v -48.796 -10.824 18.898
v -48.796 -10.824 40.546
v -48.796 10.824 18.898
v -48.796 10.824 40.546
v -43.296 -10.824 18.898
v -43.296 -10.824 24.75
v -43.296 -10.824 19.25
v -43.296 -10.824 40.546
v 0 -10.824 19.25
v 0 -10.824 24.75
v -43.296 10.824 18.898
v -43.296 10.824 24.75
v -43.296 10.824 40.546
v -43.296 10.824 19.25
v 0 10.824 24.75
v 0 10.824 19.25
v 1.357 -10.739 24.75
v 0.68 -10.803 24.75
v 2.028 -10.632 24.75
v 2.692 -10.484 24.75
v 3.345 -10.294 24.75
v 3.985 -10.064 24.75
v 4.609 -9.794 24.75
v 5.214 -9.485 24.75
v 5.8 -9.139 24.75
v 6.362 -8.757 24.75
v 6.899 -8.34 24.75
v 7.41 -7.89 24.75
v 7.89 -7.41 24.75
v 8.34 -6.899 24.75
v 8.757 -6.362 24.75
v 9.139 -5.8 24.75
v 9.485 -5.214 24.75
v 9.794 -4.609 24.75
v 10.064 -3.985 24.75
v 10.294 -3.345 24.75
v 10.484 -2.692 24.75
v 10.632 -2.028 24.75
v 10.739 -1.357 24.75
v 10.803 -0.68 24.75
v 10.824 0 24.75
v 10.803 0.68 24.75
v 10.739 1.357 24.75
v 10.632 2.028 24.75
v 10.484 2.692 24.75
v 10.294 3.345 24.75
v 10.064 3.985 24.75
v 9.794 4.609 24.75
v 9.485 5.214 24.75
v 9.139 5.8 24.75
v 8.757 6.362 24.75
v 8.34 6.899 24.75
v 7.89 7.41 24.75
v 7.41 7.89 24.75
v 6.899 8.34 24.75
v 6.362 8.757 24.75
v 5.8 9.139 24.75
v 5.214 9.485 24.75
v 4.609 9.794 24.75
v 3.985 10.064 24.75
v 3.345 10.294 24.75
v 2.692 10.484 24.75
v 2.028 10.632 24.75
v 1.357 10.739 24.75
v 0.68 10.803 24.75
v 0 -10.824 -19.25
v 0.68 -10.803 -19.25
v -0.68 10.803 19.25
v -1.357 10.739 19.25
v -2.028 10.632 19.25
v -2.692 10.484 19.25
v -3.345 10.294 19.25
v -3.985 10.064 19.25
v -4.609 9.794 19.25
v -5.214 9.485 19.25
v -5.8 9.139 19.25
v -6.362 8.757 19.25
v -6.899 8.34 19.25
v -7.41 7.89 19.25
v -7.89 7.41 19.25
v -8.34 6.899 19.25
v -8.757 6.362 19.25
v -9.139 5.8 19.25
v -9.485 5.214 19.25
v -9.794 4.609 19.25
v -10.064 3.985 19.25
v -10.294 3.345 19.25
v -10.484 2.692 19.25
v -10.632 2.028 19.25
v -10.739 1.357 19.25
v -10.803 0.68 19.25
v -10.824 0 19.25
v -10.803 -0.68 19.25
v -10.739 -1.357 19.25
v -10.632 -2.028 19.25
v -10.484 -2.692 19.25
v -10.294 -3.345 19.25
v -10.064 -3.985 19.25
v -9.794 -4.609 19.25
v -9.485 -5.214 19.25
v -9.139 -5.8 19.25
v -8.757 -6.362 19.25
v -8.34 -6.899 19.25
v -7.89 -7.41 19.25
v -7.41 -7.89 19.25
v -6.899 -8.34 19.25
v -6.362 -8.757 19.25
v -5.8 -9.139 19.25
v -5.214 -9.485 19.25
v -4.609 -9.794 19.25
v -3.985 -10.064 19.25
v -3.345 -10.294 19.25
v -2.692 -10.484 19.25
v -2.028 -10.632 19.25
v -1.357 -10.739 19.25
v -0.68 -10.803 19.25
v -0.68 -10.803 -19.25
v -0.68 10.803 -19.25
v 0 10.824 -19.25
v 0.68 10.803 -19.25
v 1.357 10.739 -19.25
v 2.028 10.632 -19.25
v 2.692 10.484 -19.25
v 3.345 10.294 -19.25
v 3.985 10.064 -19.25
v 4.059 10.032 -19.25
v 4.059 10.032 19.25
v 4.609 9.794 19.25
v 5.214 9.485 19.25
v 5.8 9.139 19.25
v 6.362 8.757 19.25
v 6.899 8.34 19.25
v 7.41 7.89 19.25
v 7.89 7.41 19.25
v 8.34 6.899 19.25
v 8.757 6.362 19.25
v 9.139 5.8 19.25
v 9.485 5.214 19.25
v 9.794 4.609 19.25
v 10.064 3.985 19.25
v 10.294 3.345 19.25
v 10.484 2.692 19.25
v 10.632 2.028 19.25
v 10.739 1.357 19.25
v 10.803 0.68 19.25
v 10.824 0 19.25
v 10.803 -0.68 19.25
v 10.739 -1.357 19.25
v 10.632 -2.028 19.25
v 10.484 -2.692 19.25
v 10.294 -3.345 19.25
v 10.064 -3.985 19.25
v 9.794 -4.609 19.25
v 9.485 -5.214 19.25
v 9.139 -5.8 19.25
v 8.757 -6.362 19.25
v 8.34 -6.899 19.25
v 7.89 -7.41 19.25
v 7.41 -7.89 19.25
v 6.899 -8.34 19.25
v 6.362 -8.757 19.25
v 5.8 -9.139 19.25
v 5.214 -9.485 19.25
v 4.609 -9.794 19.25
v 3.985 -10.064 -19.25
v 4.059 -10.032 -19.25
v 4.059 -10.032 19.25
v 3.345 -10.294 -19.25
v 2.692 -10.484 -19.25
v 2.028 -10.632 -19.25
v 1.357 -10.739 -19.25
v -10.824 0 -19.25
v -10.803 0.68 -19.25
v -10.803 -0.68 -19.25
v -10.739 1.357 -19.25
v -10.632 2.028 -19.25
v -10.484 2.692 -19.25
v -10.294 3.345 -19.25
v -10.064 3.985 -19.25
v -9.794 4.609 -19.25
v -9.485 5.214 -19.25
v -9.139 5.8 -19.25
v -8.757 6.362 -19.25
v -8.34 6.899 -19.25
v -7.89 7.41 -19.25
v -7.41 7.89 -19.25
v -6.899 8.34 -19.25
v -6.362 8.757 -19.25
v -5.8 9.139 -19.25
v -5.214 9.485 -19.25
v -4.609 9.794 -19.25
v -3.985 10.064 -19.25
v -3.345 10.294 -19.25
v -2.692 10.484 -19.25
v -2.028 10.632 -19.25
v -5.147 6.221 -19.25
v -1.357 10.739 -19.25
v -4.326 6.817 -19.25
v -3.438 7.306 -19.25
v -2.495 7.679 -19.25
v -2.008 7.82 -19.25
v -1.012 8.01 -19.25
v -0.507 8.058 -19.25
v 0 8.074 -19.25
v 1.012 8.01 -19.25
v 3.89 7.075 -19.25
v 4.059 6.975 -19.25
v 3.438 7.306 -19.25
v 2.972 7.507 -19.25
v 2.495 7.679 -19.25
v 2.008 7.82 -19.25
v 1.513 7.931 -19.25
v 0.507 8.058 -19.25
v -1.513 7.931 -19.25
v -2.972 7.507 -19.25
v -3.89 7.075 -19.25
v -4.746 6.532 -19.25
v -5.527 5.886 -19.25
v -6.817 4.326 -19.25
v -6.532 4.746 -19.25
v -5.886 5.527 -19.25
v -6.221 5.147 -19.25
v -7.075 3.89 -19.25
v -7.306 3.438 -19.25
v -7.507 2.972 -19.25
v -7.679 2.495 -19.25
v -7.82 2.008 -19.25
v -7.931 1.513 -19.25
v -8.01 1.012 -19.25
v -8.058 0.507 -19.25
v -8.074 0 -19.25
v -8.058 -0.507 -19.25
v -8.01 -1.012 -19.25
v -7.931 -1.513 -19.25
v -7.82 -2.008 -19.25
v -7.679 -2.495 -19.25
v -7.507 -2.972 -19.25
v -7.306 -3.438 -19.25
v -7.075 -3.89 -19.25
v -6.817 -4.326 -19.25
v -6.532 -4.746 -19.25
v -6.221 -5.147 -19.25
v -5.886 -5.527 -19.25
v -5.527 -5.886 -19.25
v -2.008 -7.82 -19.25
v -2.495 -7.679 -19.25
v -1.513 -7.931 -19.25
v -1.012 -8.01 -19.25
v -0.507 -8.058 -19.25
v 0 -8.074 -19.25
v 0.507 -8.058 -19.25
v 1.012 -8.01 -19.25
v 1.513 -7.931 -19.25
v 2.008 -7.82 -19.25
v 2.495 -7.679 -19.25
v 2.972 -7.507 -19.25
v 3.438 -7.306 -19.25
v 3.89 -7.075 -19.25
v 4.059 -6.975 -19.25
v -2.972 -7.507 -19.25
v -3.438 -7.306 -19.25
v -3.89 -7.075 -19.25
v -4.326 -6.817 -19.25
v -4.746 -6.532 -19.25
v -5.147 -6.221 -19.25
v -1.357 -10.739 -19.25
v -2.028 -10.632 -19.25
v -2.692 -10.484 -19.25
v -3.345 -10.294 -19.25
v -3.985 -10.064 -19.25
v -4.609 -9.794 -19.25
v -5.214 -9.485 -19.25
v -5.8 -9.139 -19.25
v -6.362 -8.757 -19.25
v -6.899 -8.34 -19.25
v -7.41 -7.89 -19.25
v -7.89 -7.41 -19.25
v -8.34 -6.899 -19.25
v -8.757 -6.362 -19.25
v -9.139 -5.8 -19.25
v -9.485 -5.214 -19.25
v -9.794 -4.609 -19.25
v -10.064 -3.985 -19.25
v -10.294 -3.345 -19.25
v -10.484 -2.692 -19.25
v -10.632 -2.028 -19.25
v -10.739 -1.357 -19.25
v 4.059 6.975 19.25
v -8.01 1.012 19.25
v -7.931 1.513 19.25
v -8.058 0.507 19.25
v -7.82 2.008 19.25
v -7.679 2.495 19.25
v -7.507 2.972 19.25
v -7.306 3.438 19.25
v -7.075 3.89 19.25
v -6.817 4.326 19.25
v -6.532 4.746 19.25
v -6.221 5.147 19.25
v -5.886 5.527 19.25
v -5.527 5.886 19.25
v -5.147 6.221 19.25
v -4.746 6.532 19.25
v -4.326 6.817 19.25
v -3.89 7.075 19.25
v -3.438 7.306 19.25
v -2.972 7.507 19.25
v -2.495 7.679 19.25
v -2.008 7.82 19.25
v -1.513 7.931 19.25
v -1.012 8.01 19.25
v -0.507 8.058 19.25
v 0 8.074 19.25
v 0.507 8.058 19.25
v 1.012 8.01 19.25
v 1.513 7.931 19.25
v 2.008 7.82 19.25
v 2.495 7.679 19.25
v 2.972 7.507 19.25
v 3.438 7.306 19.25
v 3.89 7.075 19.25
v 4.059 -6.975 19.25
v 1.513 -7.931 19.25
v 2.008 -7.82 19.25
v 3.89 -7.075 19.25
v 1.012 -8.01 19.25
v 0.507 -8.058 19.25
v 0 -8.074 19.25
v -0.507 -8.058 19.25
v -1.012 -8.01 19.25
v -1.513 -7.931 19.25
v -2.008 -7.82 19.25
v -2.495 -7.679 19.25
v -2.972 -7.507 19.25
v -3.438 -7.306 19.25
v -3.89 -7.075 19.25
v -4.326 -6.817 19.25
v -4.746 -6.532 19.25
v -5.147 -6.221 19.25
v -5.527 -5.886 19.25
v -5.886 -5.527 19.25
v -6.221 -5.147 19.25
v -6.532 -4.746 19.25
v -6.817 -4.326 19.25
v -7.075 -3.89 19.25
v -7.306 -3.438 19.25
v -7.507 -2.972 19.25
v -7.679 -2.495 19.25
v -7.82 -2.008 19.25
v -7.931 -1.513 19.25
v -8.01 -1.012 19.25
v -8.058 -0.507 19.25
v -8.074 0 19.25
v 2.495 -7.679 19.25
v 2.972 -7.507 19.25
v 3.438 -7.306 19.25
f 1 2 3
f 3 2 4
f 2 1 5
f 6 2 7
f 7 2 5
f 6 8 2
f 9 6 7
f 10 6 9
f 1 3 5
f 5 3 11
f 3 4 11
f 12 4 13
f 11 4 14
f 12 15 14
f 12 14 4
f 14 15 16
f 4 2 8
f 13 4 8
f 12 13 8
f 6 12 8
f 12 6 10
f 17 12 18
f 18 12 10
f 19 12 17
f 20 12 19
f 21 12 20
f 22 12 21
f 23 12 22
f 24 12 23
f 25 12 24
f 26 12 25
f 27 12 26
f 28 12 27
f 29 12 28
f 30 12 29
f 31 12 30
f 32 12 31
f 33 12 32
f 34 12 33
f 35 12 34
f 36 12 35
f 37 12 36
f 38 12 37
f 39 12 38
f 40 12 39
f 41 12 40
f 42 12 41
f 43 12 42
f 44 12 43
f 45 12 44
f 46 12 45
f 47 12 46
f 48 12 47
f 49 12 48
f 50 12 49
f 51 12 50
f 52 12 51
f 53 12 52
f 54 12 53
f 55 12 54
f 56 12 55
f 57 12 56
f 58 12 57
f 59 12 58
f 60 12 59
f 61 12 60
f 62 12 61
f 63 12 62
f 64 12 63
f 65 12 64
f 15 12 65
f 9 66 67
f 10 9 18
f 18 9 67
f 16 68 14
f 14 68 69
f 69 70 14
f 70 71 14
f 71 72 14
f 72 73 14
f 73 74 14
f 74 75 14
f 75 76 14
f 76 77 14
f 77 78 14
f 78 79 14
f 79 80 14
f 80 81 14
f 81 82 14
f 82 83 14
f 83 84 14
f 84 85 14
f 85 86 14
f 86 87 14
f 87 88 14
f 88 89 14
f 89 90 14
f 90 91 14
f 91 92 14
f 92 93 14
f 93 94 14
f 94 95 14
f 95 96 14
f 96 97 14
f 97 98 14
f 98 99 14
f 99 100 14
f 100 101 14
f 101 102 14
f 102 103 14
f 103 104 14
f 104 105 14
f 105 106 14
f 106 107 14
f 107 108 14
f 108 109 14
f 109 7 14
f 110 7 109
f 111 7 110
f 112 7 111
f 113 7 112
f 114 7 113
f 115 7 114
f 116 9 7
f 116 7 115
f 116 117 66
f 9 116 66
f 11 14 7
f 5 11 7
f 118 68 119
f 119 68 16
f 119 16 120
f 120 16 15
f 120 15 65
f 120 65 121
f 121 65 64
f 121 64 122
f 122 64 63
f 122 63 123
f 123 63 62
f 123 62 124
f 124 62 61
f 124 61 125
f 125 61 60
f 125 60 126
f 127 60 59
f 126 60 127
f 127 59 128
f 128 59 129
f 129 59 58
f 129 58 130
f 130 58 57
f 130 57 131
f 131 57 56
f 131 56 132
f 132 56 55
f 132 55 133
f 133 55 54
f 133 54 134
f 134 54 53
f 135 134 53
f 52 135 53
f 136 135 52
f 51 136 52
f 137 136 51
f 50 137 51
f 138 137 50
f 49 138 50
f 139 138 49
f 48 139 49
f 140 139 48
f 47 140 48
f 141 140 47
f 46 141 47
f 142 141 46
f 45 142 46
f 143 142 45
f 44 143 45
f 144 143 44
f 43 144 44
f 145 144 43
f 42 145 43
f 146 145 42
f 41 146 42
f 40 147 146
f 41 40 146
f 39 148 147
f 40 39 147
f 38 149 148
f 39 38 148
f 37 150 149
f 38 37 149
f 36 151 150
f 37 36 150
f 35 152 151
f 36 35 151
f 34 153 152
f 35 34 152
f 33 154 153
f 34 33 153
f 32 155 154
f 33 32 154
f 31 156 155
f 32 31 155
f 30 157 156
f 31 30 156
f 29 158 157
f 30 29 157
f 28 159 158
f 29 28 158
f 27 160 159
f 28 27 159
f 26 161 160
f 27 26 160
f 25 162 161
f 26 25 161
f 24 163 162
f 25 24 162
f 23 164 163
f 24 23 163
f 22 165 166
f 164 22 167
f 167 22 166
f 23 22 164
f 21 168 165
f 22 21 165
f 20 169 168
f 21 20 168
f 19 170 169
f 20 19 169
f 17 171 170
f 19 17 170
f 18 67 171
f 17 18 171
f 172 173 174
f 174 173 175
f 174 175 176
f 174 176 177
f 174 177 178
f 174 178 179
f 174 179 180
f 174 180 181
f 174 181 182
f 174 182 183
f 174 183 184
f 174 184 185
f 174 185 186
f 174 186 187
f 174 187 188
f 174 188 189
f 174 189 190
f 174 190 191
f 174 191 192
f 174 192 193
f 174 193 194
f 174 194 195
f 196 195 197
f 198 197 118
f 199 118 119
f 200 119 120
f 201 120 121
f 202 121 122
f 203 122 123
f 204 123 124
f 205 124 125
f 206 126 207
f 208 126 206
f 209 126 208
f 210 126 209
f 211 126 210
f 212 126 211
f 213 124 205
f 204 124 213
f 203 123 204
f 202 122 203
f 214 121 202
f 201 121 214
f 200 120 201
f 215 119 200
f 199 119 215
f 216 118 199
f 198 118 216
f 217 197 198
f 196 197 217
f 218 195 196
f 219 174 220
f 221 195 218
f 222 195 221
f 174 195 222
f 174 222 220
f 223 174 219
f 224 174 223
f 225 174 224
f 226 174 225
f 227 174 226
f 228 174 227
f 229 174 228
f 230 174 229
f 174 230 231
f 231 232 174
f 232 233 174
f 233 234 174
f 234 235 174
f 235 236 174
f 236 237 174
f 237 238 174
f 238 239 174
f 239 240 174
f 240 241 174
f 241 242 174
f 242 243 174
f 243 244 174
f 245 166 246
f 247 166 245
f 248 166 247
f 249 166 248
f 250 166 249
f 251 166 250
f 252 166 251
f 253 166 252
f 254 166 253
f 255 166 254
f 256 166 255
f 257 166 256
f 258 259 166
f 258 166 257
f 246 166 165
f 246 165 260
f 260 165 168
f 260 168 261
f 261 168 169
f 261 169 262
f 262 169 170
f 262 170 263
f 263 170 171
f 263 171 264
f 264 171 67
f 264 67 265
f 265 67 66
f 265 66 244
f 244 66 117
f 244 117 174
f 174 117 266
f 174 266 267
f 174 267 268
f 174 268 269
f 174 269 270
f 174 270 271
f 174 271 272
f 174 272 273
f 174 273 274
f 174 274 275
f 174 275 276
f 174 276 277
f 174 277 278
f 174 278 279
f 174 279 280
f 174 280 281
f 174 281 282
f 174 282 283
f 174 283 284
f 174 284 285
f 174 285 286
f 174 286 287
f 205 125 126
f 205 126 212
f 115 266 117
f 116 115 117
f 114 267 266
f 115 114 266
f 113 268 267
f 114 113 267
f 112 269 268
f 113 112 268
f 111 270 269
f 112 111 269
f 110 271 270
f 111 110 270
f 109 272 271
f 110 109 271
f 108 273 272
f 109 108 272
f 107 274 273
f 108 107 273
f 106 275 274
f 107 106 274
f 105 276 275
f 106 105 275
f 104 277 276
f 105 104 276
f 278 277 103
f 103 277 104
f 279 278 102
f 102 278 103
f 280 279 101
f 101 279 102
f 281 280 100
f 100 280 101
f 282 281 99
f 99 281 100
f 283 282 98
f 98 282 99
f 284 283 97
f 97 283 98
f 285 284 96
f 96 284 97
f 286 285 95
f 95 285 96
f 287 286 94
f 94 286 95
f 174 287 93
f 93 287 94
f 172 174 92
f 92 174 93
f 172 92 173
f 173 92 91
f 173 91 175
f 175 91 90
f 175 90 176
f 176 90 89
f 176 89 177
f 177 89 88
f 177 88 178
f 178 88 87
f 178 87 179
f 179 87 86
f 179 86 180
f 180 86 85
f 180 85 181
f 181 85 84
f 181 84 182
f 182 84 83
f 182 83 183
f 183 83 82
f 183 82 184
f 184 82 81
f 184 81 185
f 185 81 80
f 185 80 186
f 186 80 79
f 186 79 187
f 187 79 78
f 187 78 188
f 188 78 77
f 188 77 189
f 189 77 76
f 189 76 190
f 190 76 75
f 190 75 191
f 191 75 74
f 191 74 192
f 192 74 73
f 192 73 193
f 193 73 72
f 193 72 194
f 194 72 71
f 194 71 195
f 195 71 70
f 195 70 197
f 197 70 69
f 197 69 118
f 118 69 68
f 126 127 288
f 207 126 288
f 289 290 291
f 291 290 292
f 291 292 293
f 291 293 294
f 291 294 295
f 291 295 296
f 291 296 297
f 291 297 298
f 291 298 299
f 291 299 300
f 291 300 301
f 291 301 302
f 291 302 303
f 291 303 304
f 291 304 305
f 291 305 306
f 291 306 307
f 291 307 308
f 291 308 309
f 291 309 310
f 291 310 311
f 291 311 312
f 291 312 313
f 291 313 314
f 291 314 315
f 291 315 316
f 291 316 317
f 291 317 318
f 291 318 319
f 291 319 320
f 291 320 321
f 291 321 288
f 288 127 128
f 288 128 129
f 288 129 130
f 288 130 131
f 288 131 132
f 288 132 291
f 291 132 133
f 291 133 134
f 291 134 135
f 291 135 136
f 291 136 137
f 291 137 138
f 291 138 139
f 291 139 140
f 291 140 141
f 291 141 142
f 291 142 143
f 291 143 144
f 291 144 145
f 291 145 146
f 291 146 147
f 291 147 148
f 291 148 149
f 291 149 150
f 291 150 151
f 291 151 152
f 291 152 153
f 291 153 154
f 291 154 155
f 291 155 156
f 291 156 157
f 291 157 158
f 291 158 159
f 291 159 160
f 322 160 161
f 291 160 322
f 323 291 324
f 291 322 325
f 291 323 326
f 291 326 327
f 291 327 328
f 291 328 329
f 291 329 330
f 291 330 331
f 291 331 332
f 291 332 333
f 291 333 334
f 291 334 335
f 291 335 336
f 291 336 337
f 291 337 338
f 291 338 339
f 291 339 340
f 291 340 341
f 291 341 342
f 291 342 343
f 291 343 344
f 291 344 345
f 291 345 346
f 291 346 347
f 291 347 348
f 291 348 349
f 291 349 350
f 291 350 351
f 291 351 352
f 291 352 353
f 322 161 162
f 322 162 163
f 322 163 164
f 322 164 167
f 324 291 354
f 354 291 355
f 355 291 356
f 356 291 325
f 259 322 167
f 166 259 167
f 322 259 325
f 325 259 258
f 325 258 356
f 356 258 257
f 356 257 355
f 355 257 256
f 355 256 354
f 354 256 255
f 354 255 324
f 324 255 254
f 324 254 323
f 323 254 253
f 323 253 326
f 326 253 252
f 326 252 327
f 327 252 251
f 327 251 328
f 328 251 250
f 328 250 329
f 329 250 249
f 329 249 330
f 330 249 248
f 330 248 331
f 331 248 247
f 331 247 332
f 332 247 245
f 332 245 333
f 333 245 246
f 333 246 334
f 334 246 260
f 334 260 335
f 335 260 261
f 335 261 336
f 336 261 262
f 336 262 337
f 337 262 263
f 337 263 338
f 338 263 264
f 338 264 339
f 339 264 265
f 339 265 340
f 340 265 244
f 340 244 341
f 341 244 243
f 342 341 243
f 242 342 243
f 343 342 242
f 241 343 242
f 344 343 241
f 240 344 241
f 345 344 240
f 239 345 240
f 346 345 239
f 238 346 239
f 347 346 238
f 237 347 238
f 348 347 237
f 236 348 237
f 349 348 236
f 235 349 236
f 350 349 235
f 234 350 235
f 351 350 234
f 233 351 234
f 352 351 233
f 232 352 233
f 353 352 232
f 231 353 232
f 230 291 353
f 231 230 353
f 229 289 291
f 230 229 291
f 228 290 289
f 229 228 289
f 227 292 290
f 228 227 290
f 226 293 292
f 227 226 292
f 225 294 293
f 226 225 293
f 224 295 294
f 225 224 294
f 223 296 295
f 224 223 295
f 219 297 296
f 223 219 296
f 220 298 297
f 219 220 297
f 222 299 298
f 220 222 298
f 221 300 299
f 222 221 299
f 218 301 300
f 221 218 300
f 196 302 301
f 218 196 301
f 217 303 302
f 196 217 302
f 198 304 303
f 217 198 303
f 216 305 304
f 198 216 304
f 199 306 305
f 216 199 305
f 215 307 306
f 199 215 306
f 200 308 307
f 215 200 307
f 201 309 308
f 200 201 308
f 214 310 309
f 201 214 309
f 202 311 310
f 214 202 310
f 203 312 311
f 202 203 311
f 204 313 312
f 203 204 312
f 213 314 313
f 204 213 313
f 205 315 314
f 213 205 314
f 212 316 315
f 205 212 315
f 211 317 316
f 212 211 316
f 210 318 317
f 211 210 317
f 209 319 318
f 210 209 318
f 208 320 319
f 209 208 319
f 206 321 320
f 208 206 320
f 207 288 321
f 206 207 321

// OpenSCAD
//Variables


//Percent of tolerance for the printer and such. Chances are the hinge holes are not going to fit if they are the exact same size, and considering the innacuracies of printers, tolerance is essential.
printertolerancepercent=10;

//The diameter of the hinge
diameterofhinge=14.68;

//Length of the hinge holder piece. Past a certain point is unnecesary
lengthofbracket=35;

//Thickness of hinge holder piece.
thicknessofbracket=5;

//Fraction of remaining hinge holder piece. A full circle wouldn't fit, whereas 1/4 wouldn't hold enough
fractionofholderremains=5/8;

//Thickness of all parts of the hook
thicknessofhook=5;


//Detail of circles (higher=more, but more circle detail equals longer render time)
sfn=100;

//IGNORE (variables with percent error added in; these variables are the ones utilized by the modules below)

printertolerance=(printertolerancepercent+100)/100;

hingediameter=diameterofhinge*printertolerance;
bracketlength=lengthofbracket*printertolerance;
bracketthickness=thicknessofbracket*printertolerance;
holderfraction=fractionofholderremains*printertolerance;
hookthickness=thicknessofhook*printertolerance;




//Modules



//The piece that hangs on the hinge
module hingeholder() {
	difference() {
		difference() {
			cylinder(r=(hingediameter+bracketthickness)/2, h=bracketlength, center=true, $fn=sfn);
			cylinder(r=hingediameter/2, h=bracketlength+2, center=true, $fn=sfn);
		}
		translate([(hingediameter+bracketthickness)*holderfraction,0, 0]) {
			cube([hingediameter+bracketthickness, hingediameter+bracketthickness, bracketlength+2], center=true);
		}
	}	
}



//The hook that is connected to the hinge holder
module hook() {
	translate([0,0,(bracketlength+hookthickness)/2]) {
		cylinder(r=(hingediameter+bracketthickness)/2, h=hookthickness, center=true, $fn=sfn);
	}

	translate([-(hingediameter+bracketthickness),0, (bracketlength+hookthickness)/2]) {
		cube([(hingediameter+bracketthickness)*2, hingediameter+bracketthickness, hookthickness], center=true);
	}

	translate([(hingediameter+bracketthickness)*-2-hookthickness, (hingediameter+bracketthickness)/-2, hingediameter+bracketthickness/2]) {
		cube([hookthickness,hingediameter+bracketthickness, hingediameter+bracketthickness]);
	}

}



hingeholder();
hook();
